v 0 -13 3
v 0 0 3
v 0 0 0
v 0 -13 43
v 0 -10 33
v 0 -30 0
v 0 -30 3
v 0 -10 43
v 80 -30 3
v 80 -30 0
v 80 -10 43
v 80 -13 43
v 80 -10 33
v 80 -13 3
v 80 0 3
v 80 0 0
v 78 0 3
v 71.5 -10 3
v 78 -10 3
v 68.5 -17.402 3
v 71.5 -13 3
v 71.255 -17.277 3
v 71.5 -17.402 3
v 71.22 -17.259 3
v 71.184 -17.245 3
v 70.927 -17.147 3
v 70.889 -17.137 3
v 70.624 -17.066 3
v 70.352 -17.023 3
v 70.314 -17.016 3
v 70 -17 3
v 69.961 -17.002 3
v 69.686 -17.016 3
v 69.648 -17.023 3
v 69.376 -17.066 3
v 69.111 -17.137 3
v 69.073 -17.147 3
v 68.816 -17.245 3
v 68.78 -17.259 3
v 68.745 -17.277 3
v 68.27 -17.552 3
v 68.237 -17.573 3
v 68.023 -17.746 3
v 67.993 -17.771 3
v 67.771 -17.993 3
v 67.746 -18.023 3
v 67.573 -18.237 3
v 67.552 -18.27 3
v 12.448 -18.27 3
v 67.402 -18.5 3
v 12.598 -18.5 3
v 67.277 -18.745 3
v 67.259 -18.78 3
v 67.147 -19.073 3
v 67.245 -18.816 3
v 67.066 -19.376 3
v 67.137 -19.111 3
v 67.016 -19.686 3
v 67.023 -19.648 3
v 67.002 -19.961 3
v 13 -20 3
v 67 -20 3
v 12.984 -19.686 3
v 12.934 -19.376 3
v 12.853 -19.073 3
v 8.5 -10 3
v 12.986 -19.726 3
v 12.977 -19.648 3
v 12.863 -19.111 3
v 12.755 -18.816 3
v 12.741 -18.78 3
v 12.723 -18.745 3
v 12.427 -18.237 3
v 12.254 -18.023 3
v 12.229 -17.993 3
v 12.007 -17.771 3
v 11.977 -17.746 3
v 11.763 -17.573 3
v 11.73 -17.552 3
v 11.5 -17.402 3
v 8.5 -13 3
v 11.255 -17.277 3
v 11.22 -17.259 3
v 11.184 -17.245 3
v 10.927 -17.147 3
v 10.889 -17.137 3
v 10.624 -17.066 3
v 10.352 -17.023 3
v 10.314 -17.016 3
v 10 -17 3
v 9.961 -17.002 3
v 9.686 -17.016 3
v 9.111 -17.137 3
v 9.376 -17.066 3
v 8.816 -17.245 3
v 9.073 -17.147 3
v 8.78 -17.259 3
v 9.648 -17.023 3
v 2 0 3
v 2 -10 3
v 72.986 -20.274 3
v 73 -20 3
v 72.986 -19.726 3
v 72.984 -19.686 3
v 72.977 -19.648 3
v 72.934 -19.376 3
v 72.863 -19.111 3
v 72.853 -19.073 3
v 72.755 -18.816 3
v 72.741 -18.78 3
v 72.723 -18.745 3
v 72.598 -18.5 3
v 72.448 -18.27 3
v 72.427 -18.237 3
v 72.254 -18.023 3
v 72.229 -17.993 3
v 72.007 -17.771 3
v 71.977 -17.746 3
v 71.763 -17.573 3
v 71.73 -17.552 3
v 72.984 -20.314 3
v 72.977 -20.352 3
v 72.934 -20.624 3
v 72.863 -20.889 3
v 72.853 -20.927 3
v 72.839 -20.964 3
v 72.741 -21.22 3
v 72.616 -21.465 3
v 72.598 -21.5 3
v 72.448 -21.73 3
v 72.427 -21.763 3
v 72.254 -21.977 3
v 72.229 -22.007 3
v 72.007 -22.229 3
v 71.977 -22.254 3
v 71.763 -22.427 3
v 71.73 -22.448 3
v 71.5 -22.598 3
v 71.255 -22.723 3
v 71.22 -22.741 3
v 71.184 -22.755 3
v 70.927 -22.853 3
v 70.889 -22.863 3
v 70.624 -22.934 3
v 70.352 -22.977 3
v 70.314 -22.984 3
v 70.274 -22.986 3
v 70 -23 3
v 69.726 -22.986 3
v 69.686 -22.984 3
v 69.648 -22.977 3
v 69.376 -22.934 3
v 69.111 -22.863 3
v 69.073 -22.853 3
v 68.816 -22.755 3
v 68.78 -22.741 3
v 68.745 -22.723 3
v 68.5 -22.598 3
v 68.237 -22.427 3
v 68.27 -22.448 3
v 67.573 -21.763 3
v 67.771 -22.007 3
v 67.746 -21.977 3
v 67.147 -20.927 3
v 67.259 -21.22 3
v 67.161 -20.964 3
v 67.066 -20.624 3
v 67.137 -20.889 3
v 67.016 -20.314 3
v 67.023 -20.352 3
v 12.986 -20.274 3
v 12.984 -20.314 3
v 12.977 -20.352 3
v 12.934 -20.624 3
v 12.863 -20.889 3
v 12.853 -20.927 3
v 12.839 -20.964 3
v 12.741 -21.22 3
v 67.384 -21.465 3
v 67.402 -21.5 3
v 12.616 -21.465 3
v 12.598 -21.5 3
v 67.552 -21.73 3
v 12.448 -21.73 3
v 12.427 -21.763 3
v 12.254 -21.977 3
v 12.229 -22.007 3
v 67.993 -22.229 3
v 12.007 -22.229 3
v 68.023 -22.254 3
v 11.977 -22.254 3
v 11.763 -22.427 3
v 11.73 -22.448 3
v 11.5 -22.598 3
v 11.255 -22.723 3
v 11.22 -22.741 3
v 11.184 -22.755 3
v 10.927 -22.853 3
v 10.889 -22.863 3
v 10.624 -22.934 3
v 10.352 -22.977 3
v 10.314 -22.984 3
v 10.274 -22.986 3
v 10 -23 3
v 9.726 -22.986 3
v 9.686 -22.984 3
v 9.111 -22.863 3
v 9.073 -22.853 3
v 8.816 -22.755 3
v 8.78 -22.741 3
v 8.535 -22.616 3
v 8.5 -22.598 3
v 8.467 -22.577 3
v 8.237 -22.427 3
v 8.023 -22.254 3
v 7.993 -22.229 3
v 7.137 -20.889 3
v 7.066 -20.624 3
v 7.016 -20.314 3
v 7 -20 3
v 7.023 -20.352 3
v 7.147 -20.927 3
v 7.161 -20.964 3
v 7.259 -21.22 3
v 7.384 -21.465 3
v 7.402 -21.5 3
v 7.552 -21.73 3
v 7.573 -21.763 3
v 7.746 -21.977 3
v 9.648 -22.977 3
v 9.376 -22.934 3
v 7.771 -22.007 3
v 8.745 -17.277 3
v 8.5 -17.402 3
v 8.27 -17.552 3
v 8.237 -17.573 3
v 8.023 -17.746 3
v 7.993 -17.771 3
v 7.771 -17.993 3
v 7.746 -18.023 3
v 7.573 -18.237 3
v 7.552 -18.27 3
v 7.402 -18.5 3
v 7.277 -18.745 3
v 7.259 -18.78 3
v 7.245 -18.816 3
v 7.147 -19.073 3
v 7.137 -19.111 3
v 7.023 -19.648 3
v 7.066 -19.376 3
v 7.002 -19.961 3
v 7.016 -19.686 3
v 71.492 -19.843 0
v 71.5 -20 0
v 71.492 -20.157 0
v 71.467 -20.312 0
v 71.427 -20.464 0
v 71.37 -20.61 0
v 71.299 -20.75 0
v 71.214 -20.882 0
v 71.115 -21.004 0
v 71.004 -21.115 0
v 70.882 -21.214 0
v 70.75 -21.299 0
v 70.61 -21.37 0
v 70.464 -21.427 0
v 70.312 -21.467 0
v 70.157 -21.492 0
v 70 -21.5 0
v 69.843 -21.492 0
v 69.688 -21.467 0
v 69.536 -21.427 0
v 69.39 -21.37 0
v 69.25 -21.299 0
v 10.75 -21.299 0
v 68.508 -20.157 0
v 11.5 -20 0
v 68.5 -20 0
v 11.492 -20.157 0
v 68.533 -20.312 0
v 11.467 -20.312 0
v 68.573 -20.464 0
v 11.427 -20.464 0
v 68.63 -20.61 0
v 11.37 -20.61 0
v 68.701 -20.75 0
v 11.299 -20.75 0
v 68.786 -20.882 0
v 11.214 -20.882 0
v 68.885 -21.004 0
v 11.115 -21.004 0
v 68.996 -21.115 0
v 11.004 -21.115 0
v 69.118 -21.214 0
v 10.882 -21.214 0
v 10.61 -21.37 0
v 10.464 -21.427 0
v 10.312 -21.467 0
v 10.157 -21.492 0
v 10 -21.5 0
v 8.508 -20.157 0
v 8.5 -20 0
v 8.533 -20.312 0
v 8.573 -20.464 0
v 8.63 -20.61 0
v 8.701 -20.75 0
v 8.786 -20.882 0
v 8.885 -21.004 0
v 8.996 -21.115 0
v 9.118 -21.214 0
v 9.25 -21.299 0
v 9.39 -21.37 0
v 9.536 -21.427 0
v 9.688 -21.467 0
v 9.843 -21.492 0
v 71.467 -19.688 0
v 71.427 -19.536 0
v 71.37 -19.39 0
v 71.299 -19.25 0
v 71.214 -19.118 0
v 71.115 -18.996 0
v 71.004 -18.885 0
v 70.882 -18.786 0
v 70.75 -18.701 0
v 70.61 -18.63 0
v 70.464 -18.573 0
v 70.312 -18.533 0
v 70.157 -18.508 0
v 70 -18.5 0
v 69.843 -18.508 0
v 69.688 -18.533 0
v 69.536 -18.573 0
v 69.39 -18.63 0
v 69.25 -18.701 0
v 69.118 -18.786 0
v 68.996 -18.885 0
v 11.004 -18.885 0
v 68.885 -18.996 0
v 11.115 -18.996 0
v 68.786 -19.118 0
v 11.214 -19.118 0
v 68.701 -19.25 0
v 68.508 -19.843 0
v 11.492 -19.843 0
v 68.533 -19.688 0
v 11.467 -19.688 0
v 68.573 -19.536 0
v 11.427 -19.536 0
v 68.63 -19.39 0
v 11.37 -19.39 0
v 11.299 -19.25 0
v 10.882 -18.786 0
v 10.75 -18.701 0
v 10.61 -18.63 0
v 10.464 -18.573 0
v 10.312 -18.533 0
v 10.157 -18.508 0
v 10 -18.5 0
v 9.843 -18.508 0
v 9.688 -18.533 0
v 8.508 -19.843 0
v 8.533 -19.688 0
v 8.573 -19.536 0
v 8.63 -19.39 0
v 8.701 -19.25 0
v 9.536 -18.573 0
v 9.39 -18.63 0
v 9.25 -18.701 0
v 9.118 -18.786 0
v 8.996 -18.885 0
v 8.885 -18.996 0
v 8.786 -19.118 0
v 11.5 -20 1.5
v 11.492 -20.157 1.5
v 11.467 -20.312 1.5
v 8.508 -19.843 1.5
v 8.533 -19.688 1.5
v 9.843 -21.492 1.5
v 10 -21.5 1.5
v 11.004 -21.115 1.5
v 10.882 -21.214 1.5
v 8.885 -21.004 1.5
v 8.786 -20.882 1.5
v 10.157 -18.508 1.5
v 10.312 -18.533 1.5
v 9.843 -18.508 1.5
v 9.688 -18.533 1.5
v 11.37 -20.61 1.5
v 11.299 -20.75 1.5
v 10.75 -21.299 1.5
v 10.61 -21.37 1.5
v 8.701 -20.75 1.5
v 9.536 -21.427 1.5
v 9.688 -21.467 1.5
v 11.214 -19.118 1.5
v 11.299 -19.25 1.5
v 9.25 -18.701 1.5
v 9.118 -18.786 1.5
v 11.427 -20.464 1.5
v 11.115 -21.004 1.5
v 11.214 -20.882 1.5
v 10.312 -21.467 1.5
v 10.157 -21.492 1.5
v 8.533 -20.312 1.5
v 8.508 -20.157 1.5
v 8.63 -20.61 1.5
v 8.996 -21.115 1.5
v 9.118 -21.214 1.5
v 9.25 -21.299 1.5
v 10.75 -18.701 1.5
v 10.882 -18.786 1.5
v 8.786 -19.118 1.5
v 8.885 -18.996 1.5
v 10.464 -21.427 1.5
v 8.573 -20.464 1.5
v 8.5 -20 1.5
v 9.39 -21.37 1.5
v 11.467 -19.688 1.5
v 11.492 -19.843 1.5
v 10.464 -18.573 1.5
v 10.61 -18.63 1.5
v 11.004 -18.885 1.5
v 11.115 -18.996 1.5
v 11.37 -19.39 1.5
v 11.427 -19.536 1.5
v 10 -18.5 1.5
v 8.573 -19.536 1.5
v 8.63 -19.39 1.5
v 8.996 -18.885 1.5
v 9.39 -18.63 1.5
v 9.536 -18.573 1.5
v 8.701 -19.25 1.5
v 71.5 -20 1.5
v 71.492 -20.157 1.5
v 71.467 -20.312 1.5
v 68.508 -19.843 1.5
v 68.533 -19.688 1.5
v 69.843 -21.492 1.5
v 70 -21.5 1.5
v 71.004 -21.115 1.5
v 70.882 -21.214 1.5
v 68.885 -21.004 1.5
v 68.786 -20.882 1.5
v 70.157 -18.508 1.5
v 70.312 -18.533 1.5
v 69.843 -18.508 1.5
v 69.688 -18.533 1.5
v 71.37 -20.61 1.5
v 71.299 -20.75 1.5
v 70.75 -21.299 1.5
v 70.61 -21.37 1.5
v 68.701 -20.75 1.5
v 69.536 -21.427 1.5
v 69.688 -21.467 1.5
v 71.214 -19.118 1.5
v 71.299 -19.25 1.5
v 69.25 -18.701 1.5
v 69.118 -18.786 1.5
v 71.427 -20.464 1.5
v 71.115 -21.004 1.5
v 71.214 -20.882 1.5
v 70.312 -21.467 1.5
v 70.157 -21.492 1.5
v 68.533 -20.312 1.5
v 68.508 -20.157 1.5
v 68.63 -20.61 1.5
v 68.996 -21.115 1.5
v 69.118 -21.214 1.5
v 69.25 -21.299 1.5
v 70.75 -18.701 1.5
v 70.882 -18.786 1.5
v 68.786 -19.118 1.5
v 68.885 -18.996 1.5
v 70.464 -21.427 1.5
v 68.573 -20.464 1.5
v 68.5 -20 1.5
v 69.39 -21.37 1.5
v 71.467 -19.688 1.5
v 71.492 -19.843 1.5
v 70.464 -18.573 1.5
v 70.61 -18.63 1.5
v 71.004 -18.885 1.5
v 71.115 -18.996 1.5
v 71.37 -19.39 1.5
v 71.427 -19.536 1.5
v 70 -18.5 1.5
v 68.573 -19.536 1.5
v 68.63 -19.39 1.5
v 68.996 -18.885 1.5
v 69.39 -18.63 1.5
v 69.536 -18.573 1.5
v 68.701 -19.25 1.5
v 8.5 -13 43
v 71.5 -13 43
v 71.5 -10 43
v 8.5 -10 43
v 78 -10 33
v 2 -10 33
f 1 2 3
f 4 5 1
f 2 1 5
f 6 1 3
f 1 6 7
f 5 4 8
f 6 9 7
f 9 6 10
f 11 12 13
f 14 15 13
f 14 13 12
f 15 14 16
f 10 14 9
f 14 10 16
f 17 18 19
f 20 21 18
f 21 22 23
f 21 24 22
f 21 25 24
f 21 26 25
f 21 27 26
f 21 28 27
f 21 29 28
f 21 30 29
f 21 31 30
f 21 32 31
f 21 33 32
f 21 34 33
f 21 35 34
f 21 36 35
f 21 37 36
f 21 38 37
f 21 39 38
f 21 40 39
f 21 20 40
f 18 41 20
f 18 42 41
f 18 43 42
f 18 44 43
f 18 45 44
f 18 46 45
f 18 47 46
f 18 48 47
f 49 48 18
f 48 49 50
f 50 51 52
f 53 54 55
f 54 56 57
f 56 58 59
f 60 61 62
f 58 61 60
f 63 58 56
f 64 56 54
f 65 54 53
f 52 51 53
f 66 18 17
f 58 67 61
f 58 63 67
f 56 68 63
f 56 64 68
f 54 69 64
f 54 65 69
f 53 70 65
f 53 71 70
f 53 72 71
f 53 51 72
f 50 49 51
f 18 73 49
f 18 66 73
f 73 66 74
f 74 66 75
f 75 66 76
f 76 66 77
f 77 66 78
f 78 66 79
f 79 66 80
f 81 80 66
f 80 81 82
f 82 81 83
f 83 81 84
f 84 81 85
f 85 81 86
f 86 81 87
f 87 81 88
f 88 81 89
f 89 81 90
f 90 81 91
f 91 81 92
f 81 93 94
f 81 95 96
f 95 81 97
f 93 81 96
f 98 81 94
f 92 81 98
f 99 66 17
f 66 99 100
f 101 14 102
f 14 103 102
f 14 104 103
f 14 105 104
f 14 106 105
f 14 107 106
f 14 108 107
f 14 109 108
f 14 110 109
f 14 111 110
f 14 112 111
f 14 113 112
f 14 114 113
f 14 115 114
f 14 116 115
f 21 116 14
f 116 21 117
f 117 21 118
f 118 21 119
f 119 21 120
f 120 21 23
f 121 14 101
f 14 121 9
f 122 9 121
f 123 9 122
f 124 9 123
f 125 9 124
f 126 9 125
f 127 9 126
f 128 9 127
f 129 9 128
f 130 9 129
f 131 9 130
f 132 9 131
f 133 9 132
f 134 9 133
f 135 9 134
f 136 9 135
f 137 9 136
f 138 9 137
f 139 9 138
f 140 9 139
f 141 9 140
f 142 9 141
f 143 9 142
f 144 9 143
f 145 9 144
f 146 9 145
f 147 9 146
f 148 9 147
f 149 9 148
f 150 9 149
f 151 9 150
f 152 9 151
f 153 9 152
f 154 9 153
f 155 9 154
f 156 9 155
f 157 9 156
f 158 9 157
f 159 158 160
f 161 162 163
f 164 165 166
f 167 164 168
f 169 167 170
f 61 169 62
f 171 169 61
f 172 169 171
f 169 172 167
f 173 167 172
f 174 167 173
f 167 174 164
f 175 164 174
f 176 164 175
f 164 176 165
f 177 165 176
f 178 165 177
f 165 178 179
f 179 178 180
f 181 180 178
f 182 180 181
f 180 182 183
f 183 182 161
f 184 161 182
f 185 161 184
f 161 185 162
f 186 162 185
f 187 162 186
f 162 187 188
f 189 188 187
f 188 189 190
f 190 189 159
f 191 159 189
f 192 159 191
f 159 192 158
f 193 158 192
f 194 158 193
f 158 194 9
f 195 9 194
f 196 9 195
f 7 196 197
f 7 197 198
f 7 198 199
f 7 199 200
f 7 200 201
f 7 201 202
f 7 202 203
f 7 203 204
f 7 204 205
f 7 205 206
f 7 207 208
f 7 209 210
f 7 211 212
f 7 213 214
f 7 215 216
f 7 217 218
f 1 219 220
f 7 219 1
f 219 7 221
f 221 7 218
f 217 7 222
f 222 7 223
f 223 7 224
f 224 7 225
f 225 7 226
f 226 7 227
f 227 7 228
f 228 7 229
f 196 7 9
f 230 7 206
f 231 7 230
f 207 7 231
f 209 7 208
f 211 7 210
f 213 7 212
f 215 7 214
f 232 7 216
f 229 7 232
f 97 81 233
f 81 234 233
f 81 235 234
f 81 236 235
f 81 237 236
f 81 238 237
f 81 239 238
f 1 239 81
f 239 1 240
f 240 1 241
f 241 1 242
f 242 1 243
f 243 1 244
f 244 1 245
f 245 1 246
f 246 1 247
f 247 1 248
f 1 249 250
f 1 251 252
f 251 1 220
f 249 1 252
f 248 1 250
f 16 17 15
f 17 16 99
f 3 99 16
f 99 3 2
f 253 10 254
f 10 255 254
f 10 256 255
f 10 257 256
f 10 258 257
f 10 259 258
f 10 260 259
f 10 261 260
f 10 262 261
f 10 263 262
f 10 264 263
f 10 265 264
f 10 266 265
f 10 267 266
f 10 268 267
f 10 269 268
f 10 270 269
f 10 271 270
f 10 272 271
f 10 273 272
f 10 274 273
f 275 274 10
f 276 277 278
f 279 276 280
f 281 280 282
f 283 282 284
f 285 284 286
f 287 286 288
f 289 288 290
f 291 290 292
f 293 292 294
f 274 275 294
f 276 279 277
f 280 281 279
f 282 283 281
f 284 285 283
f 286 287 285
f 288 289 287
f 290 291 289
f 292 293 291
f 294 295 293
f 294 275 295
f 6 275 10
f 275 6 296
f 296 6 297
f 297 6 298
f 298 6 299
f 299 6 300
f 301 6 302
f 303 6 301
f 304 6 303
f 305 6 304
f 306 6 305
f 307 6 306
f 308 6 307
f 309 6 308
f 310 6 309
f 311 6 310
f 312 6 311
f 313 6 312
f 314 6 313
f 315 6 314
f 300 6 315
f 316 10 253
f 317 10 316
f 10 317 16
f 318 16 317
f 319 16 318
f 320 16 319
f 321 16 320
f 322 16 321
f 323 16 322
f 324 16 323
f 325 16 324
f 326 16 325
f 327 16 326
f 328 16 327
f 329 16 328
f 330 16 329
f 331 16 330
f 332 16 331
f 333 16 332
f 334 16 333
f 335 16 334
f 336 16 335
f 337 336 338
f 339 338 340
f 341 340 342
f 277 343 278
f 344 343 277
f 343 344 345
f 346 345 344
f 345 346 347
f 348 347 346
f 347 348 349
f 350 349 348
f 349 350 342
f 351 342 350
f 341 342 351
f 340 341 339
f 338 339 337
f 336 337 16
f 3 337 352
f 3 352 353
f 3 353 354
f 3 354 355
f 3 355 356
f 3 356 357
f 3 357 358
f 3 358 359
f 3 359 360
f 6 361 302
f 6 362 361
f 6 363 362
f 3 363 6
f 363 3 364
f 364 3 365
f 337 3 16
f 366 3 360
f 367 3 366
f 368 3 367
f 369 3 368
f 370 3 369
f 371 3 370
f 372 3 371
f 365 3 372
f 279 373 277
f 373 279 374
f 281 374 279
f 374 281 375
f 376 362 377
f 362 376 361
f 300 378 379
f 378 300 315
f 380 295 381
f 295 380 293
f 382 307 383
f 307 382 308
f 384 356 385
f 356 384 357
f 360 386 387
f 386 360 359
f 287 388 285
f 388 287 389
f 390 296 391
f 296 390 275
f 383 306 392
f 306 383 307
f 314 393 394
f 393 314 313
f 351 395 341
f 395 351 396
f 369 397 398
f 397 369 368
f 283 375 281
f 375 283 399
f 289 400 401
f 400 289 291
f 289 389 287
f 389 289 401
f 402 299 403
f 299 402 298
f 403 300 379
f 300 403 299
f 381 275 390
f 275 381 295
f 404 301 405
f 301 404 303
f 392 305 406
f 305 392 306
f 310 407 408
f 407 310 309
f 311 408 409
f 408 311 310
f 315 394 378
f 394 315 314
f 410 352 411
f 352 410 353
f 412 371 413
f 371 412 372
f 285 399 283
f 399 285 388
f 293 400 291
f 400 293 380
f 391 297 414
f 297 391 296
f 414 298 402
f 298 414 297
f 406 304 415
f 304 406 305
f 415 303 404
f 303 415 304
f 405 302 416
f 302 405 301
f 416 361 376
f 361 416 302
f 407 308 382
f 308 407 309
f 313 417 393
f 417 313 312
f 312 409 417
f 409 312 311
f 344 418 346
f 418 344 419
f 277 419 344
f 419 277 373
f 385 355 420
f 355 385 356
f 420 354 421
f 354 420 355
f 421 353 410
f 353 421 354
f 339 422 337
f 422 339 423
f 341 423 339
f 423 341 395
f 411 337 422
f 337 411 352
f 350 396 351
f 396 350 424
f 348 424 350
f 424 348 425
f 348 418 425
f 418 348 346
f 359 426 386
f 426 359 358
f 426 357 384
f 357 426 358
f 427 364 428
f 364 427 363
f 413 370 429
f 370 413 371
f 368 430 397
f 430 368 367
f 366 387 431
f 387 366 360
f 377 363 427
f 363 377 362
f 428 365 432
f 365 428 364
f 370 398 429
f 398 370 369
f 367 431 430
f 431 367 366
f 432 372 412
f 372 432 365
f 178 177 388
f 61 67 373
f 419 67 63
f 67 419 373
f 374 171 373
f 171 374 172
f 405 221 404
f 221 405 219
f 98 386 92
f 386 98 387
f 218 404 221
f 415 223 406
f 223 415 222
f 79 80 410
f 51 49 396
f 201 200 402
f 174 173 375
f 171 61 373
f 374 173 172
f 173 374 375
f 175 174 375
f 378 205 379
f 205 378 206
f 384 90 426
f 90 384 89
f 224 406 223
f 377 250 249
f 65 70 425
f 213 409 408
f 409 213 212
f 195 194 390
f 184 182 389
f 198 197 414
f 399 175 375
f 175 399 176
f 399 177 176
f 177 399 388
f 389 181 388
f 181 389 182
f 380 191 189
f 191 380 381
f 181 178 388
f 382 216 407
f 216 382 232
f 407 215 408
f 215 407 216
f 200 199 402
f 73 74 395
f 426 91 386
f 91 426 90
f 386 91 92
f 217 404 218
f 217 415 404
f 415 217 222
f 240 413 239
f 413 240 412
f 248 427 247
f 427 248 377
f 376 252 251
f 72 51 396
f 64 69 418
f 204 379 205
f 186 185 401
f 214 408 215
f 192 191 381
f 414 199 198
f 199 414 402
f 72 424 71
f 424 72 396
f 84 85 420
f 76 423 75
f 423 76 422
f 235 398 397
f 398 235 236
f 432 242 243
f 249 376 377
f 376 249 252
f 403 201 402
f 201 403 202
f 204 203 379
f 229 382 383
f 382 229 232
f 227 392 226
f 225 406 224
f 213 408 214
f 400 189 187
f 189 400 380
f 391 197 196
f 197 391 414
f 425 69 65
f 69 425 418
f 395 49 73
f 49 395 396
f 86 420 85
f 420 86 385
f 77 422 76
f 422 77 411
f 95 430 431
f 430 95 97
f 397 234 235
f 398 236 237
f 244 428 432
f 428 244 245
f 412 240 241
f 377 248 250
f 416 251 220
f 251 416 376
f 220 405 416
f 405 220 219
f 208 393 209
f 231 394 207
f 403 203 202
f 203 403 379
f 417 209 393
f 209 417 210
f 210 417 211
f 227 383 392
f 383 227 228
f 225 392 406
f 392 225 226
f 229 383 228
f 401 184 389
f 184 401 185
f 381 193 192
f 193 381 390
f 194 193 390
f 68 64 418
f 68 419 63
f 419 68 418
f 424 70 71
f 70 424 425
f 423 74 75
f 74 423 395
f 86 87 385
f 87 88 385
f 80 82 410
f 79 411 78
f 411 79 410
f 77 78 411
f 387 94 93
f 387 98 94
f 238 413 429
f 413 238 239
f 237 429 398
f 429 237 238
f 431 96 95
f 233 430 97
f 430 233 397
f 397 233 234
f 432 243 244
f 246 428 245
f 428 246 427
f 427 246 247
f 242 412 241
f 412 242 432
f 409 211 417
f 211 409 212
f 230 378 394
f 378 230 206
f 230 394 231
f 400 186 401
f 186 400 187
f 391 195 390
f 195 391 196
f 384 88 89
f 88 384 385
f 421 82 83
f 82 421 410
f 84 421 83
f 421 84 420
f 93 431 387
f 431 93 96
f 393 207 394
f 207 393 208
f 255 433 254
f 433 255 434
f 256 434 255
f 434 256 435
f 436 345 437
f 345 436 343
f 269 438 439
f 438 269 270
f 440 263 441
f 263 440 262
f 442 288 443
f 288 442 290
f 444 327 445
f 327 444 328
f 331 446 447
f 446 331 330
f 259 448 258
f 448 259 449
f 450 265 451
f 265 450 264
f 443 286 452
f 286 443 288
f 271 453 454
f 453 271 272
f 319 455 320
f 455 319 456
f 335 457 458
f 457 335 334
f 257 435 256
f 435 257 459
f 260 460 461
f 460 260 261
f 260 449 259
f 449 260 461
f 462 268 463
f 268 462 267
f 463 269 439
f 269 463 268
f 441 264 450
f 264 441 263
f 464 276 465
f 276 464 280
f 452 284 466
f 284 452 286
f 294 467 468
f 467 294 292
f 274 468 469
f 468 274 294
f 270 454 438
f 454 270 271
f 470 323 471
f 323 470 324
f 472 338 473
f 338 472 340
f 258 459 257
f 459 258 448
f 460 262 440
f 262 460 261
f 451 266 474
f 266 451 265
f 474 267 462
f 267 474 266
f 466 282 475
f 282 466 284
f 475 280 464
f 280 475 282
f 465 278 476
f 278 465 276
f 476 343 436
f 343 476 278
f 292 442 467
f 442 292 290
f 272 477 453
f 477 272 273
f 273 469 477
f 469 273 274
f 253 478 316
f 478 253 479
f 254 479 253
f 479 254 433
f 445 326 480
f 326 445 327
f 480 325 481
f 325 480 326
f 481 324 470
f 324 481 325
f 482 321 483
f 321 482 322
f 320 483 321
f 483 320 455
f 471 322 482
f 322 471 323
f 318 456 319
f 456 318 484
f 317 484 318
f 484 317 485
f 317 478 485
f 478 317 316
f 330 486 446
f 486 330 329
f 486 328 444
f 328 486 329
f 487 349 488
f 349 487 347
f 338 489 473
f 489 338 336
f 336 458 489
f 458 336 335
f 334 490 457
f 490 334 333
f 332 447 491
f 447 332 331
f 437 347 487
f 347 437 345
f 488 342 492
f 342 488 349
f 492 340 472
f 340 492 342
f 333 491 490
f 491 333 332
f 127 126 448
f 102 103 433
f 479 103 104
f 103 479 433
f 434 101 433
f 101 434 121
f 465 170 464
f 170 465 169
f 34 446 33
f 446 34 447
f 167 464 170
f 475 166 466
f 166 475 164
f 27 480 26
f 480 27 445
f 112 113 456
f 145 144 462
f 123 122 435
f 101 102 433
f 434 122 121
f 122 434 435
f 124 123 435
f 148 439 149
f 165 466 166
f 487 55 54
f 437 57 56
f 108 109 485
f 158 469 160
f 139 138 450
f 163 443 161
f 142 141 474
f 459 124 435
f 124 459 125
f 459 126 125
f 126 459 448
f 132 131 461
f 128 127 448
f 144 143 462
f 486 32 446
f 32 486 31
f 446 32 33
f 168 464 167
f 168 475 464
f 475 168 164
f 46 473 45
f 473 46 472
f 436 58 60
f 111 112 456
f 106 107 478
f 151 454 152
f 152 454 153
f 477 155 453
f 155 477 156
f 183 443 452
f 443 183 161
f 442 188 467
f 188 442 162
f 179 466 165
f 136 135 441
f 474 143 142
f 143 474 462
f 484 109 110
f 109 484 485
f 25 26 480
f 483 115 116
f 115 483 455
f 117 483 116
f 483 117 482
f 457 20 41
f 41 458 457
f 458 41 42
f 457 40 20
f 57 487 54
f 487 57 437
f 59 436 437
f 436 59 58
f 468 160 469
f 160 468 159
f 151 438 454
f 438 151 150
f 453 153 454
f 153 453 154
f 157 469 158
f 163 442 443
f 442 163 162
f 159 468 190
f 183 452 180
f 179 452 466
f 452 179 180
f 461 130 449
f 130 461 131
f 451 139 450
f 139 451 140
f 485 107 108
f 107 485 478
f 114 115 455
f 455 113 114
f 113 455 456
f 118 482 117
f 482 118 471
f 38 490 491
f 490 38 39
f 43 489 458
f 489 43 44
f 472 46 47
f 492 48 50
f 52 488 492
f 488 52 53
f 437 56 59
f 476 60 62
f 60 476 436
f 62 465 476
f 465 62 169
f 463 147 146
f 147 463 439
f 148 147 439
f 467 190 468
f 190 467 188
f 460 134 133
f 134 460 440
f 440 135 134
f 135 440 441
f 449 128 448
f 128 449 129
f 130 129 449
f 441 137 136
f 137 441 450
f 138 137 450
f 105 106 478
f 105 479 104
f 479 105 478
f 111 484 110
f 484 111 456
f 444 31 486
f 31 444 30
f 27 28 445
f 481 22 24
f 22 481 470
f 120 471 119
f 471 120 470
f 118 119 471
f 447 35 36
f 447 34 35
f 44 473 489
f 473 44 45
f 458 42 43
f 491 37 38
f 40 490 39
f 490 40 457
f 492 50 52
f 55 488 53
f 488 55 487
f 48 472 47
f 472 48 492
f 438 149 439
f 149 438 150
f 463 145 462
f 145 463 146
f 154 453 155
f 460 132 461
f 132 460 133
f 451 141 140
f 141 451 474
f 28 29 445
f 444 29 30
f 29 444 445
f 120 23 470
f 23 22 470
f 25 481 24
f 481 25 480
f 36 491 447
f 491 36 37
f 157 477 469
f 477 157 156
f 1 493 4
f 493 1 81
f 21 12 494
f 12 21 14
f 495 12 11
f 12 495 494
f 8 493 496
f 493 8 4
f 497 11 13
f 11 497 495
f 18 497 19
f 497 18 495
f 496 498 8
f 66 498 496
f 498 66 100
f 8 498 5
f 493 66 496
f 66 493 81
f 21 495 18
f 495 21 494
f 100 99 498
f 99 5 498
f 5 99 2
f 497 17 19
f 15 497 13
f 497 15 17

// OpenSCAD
$fn = 60;

rotate([90, 0, 0]) {
 difference () {
   cube([80, 3, 30]);
   translate([10, 4, 20]) rotate([90, 0, 0]) cylinder(5, r=1.5);
   translate([10, 1.5, 20]) rotate([-90, 0, 0]) cylinder(2, r1=1.5, r2=3.5);
   translate([70, 4, 20]) rotate([90, 0, 0]) cylinder(5, r=1.5);
   translate([70, 1.5, 20]) rotate([-90, 0, 0]) cylinder(2, r1=1.5, r2=3.5);
 

 
   }
 
difference () {
  translate([0, 3, 10]) cube([80, 40, 3]);
  translate([(80-63)/2, 3, 9]) cube([63, 41, 5]);
}




translate([2, 3, 0]) rotate([0, -90, 0]) {
linear_extrude(height=2) {
polygon([[0, 0], [10, 0], [10, 30]]);
}
}

translate([80, 3, 0]) rotate([0, -90, 0]) {
linear_extrude(height=2) {
polygon([[0, 0], [10, 0], [10, 30]]);
}
}

}
